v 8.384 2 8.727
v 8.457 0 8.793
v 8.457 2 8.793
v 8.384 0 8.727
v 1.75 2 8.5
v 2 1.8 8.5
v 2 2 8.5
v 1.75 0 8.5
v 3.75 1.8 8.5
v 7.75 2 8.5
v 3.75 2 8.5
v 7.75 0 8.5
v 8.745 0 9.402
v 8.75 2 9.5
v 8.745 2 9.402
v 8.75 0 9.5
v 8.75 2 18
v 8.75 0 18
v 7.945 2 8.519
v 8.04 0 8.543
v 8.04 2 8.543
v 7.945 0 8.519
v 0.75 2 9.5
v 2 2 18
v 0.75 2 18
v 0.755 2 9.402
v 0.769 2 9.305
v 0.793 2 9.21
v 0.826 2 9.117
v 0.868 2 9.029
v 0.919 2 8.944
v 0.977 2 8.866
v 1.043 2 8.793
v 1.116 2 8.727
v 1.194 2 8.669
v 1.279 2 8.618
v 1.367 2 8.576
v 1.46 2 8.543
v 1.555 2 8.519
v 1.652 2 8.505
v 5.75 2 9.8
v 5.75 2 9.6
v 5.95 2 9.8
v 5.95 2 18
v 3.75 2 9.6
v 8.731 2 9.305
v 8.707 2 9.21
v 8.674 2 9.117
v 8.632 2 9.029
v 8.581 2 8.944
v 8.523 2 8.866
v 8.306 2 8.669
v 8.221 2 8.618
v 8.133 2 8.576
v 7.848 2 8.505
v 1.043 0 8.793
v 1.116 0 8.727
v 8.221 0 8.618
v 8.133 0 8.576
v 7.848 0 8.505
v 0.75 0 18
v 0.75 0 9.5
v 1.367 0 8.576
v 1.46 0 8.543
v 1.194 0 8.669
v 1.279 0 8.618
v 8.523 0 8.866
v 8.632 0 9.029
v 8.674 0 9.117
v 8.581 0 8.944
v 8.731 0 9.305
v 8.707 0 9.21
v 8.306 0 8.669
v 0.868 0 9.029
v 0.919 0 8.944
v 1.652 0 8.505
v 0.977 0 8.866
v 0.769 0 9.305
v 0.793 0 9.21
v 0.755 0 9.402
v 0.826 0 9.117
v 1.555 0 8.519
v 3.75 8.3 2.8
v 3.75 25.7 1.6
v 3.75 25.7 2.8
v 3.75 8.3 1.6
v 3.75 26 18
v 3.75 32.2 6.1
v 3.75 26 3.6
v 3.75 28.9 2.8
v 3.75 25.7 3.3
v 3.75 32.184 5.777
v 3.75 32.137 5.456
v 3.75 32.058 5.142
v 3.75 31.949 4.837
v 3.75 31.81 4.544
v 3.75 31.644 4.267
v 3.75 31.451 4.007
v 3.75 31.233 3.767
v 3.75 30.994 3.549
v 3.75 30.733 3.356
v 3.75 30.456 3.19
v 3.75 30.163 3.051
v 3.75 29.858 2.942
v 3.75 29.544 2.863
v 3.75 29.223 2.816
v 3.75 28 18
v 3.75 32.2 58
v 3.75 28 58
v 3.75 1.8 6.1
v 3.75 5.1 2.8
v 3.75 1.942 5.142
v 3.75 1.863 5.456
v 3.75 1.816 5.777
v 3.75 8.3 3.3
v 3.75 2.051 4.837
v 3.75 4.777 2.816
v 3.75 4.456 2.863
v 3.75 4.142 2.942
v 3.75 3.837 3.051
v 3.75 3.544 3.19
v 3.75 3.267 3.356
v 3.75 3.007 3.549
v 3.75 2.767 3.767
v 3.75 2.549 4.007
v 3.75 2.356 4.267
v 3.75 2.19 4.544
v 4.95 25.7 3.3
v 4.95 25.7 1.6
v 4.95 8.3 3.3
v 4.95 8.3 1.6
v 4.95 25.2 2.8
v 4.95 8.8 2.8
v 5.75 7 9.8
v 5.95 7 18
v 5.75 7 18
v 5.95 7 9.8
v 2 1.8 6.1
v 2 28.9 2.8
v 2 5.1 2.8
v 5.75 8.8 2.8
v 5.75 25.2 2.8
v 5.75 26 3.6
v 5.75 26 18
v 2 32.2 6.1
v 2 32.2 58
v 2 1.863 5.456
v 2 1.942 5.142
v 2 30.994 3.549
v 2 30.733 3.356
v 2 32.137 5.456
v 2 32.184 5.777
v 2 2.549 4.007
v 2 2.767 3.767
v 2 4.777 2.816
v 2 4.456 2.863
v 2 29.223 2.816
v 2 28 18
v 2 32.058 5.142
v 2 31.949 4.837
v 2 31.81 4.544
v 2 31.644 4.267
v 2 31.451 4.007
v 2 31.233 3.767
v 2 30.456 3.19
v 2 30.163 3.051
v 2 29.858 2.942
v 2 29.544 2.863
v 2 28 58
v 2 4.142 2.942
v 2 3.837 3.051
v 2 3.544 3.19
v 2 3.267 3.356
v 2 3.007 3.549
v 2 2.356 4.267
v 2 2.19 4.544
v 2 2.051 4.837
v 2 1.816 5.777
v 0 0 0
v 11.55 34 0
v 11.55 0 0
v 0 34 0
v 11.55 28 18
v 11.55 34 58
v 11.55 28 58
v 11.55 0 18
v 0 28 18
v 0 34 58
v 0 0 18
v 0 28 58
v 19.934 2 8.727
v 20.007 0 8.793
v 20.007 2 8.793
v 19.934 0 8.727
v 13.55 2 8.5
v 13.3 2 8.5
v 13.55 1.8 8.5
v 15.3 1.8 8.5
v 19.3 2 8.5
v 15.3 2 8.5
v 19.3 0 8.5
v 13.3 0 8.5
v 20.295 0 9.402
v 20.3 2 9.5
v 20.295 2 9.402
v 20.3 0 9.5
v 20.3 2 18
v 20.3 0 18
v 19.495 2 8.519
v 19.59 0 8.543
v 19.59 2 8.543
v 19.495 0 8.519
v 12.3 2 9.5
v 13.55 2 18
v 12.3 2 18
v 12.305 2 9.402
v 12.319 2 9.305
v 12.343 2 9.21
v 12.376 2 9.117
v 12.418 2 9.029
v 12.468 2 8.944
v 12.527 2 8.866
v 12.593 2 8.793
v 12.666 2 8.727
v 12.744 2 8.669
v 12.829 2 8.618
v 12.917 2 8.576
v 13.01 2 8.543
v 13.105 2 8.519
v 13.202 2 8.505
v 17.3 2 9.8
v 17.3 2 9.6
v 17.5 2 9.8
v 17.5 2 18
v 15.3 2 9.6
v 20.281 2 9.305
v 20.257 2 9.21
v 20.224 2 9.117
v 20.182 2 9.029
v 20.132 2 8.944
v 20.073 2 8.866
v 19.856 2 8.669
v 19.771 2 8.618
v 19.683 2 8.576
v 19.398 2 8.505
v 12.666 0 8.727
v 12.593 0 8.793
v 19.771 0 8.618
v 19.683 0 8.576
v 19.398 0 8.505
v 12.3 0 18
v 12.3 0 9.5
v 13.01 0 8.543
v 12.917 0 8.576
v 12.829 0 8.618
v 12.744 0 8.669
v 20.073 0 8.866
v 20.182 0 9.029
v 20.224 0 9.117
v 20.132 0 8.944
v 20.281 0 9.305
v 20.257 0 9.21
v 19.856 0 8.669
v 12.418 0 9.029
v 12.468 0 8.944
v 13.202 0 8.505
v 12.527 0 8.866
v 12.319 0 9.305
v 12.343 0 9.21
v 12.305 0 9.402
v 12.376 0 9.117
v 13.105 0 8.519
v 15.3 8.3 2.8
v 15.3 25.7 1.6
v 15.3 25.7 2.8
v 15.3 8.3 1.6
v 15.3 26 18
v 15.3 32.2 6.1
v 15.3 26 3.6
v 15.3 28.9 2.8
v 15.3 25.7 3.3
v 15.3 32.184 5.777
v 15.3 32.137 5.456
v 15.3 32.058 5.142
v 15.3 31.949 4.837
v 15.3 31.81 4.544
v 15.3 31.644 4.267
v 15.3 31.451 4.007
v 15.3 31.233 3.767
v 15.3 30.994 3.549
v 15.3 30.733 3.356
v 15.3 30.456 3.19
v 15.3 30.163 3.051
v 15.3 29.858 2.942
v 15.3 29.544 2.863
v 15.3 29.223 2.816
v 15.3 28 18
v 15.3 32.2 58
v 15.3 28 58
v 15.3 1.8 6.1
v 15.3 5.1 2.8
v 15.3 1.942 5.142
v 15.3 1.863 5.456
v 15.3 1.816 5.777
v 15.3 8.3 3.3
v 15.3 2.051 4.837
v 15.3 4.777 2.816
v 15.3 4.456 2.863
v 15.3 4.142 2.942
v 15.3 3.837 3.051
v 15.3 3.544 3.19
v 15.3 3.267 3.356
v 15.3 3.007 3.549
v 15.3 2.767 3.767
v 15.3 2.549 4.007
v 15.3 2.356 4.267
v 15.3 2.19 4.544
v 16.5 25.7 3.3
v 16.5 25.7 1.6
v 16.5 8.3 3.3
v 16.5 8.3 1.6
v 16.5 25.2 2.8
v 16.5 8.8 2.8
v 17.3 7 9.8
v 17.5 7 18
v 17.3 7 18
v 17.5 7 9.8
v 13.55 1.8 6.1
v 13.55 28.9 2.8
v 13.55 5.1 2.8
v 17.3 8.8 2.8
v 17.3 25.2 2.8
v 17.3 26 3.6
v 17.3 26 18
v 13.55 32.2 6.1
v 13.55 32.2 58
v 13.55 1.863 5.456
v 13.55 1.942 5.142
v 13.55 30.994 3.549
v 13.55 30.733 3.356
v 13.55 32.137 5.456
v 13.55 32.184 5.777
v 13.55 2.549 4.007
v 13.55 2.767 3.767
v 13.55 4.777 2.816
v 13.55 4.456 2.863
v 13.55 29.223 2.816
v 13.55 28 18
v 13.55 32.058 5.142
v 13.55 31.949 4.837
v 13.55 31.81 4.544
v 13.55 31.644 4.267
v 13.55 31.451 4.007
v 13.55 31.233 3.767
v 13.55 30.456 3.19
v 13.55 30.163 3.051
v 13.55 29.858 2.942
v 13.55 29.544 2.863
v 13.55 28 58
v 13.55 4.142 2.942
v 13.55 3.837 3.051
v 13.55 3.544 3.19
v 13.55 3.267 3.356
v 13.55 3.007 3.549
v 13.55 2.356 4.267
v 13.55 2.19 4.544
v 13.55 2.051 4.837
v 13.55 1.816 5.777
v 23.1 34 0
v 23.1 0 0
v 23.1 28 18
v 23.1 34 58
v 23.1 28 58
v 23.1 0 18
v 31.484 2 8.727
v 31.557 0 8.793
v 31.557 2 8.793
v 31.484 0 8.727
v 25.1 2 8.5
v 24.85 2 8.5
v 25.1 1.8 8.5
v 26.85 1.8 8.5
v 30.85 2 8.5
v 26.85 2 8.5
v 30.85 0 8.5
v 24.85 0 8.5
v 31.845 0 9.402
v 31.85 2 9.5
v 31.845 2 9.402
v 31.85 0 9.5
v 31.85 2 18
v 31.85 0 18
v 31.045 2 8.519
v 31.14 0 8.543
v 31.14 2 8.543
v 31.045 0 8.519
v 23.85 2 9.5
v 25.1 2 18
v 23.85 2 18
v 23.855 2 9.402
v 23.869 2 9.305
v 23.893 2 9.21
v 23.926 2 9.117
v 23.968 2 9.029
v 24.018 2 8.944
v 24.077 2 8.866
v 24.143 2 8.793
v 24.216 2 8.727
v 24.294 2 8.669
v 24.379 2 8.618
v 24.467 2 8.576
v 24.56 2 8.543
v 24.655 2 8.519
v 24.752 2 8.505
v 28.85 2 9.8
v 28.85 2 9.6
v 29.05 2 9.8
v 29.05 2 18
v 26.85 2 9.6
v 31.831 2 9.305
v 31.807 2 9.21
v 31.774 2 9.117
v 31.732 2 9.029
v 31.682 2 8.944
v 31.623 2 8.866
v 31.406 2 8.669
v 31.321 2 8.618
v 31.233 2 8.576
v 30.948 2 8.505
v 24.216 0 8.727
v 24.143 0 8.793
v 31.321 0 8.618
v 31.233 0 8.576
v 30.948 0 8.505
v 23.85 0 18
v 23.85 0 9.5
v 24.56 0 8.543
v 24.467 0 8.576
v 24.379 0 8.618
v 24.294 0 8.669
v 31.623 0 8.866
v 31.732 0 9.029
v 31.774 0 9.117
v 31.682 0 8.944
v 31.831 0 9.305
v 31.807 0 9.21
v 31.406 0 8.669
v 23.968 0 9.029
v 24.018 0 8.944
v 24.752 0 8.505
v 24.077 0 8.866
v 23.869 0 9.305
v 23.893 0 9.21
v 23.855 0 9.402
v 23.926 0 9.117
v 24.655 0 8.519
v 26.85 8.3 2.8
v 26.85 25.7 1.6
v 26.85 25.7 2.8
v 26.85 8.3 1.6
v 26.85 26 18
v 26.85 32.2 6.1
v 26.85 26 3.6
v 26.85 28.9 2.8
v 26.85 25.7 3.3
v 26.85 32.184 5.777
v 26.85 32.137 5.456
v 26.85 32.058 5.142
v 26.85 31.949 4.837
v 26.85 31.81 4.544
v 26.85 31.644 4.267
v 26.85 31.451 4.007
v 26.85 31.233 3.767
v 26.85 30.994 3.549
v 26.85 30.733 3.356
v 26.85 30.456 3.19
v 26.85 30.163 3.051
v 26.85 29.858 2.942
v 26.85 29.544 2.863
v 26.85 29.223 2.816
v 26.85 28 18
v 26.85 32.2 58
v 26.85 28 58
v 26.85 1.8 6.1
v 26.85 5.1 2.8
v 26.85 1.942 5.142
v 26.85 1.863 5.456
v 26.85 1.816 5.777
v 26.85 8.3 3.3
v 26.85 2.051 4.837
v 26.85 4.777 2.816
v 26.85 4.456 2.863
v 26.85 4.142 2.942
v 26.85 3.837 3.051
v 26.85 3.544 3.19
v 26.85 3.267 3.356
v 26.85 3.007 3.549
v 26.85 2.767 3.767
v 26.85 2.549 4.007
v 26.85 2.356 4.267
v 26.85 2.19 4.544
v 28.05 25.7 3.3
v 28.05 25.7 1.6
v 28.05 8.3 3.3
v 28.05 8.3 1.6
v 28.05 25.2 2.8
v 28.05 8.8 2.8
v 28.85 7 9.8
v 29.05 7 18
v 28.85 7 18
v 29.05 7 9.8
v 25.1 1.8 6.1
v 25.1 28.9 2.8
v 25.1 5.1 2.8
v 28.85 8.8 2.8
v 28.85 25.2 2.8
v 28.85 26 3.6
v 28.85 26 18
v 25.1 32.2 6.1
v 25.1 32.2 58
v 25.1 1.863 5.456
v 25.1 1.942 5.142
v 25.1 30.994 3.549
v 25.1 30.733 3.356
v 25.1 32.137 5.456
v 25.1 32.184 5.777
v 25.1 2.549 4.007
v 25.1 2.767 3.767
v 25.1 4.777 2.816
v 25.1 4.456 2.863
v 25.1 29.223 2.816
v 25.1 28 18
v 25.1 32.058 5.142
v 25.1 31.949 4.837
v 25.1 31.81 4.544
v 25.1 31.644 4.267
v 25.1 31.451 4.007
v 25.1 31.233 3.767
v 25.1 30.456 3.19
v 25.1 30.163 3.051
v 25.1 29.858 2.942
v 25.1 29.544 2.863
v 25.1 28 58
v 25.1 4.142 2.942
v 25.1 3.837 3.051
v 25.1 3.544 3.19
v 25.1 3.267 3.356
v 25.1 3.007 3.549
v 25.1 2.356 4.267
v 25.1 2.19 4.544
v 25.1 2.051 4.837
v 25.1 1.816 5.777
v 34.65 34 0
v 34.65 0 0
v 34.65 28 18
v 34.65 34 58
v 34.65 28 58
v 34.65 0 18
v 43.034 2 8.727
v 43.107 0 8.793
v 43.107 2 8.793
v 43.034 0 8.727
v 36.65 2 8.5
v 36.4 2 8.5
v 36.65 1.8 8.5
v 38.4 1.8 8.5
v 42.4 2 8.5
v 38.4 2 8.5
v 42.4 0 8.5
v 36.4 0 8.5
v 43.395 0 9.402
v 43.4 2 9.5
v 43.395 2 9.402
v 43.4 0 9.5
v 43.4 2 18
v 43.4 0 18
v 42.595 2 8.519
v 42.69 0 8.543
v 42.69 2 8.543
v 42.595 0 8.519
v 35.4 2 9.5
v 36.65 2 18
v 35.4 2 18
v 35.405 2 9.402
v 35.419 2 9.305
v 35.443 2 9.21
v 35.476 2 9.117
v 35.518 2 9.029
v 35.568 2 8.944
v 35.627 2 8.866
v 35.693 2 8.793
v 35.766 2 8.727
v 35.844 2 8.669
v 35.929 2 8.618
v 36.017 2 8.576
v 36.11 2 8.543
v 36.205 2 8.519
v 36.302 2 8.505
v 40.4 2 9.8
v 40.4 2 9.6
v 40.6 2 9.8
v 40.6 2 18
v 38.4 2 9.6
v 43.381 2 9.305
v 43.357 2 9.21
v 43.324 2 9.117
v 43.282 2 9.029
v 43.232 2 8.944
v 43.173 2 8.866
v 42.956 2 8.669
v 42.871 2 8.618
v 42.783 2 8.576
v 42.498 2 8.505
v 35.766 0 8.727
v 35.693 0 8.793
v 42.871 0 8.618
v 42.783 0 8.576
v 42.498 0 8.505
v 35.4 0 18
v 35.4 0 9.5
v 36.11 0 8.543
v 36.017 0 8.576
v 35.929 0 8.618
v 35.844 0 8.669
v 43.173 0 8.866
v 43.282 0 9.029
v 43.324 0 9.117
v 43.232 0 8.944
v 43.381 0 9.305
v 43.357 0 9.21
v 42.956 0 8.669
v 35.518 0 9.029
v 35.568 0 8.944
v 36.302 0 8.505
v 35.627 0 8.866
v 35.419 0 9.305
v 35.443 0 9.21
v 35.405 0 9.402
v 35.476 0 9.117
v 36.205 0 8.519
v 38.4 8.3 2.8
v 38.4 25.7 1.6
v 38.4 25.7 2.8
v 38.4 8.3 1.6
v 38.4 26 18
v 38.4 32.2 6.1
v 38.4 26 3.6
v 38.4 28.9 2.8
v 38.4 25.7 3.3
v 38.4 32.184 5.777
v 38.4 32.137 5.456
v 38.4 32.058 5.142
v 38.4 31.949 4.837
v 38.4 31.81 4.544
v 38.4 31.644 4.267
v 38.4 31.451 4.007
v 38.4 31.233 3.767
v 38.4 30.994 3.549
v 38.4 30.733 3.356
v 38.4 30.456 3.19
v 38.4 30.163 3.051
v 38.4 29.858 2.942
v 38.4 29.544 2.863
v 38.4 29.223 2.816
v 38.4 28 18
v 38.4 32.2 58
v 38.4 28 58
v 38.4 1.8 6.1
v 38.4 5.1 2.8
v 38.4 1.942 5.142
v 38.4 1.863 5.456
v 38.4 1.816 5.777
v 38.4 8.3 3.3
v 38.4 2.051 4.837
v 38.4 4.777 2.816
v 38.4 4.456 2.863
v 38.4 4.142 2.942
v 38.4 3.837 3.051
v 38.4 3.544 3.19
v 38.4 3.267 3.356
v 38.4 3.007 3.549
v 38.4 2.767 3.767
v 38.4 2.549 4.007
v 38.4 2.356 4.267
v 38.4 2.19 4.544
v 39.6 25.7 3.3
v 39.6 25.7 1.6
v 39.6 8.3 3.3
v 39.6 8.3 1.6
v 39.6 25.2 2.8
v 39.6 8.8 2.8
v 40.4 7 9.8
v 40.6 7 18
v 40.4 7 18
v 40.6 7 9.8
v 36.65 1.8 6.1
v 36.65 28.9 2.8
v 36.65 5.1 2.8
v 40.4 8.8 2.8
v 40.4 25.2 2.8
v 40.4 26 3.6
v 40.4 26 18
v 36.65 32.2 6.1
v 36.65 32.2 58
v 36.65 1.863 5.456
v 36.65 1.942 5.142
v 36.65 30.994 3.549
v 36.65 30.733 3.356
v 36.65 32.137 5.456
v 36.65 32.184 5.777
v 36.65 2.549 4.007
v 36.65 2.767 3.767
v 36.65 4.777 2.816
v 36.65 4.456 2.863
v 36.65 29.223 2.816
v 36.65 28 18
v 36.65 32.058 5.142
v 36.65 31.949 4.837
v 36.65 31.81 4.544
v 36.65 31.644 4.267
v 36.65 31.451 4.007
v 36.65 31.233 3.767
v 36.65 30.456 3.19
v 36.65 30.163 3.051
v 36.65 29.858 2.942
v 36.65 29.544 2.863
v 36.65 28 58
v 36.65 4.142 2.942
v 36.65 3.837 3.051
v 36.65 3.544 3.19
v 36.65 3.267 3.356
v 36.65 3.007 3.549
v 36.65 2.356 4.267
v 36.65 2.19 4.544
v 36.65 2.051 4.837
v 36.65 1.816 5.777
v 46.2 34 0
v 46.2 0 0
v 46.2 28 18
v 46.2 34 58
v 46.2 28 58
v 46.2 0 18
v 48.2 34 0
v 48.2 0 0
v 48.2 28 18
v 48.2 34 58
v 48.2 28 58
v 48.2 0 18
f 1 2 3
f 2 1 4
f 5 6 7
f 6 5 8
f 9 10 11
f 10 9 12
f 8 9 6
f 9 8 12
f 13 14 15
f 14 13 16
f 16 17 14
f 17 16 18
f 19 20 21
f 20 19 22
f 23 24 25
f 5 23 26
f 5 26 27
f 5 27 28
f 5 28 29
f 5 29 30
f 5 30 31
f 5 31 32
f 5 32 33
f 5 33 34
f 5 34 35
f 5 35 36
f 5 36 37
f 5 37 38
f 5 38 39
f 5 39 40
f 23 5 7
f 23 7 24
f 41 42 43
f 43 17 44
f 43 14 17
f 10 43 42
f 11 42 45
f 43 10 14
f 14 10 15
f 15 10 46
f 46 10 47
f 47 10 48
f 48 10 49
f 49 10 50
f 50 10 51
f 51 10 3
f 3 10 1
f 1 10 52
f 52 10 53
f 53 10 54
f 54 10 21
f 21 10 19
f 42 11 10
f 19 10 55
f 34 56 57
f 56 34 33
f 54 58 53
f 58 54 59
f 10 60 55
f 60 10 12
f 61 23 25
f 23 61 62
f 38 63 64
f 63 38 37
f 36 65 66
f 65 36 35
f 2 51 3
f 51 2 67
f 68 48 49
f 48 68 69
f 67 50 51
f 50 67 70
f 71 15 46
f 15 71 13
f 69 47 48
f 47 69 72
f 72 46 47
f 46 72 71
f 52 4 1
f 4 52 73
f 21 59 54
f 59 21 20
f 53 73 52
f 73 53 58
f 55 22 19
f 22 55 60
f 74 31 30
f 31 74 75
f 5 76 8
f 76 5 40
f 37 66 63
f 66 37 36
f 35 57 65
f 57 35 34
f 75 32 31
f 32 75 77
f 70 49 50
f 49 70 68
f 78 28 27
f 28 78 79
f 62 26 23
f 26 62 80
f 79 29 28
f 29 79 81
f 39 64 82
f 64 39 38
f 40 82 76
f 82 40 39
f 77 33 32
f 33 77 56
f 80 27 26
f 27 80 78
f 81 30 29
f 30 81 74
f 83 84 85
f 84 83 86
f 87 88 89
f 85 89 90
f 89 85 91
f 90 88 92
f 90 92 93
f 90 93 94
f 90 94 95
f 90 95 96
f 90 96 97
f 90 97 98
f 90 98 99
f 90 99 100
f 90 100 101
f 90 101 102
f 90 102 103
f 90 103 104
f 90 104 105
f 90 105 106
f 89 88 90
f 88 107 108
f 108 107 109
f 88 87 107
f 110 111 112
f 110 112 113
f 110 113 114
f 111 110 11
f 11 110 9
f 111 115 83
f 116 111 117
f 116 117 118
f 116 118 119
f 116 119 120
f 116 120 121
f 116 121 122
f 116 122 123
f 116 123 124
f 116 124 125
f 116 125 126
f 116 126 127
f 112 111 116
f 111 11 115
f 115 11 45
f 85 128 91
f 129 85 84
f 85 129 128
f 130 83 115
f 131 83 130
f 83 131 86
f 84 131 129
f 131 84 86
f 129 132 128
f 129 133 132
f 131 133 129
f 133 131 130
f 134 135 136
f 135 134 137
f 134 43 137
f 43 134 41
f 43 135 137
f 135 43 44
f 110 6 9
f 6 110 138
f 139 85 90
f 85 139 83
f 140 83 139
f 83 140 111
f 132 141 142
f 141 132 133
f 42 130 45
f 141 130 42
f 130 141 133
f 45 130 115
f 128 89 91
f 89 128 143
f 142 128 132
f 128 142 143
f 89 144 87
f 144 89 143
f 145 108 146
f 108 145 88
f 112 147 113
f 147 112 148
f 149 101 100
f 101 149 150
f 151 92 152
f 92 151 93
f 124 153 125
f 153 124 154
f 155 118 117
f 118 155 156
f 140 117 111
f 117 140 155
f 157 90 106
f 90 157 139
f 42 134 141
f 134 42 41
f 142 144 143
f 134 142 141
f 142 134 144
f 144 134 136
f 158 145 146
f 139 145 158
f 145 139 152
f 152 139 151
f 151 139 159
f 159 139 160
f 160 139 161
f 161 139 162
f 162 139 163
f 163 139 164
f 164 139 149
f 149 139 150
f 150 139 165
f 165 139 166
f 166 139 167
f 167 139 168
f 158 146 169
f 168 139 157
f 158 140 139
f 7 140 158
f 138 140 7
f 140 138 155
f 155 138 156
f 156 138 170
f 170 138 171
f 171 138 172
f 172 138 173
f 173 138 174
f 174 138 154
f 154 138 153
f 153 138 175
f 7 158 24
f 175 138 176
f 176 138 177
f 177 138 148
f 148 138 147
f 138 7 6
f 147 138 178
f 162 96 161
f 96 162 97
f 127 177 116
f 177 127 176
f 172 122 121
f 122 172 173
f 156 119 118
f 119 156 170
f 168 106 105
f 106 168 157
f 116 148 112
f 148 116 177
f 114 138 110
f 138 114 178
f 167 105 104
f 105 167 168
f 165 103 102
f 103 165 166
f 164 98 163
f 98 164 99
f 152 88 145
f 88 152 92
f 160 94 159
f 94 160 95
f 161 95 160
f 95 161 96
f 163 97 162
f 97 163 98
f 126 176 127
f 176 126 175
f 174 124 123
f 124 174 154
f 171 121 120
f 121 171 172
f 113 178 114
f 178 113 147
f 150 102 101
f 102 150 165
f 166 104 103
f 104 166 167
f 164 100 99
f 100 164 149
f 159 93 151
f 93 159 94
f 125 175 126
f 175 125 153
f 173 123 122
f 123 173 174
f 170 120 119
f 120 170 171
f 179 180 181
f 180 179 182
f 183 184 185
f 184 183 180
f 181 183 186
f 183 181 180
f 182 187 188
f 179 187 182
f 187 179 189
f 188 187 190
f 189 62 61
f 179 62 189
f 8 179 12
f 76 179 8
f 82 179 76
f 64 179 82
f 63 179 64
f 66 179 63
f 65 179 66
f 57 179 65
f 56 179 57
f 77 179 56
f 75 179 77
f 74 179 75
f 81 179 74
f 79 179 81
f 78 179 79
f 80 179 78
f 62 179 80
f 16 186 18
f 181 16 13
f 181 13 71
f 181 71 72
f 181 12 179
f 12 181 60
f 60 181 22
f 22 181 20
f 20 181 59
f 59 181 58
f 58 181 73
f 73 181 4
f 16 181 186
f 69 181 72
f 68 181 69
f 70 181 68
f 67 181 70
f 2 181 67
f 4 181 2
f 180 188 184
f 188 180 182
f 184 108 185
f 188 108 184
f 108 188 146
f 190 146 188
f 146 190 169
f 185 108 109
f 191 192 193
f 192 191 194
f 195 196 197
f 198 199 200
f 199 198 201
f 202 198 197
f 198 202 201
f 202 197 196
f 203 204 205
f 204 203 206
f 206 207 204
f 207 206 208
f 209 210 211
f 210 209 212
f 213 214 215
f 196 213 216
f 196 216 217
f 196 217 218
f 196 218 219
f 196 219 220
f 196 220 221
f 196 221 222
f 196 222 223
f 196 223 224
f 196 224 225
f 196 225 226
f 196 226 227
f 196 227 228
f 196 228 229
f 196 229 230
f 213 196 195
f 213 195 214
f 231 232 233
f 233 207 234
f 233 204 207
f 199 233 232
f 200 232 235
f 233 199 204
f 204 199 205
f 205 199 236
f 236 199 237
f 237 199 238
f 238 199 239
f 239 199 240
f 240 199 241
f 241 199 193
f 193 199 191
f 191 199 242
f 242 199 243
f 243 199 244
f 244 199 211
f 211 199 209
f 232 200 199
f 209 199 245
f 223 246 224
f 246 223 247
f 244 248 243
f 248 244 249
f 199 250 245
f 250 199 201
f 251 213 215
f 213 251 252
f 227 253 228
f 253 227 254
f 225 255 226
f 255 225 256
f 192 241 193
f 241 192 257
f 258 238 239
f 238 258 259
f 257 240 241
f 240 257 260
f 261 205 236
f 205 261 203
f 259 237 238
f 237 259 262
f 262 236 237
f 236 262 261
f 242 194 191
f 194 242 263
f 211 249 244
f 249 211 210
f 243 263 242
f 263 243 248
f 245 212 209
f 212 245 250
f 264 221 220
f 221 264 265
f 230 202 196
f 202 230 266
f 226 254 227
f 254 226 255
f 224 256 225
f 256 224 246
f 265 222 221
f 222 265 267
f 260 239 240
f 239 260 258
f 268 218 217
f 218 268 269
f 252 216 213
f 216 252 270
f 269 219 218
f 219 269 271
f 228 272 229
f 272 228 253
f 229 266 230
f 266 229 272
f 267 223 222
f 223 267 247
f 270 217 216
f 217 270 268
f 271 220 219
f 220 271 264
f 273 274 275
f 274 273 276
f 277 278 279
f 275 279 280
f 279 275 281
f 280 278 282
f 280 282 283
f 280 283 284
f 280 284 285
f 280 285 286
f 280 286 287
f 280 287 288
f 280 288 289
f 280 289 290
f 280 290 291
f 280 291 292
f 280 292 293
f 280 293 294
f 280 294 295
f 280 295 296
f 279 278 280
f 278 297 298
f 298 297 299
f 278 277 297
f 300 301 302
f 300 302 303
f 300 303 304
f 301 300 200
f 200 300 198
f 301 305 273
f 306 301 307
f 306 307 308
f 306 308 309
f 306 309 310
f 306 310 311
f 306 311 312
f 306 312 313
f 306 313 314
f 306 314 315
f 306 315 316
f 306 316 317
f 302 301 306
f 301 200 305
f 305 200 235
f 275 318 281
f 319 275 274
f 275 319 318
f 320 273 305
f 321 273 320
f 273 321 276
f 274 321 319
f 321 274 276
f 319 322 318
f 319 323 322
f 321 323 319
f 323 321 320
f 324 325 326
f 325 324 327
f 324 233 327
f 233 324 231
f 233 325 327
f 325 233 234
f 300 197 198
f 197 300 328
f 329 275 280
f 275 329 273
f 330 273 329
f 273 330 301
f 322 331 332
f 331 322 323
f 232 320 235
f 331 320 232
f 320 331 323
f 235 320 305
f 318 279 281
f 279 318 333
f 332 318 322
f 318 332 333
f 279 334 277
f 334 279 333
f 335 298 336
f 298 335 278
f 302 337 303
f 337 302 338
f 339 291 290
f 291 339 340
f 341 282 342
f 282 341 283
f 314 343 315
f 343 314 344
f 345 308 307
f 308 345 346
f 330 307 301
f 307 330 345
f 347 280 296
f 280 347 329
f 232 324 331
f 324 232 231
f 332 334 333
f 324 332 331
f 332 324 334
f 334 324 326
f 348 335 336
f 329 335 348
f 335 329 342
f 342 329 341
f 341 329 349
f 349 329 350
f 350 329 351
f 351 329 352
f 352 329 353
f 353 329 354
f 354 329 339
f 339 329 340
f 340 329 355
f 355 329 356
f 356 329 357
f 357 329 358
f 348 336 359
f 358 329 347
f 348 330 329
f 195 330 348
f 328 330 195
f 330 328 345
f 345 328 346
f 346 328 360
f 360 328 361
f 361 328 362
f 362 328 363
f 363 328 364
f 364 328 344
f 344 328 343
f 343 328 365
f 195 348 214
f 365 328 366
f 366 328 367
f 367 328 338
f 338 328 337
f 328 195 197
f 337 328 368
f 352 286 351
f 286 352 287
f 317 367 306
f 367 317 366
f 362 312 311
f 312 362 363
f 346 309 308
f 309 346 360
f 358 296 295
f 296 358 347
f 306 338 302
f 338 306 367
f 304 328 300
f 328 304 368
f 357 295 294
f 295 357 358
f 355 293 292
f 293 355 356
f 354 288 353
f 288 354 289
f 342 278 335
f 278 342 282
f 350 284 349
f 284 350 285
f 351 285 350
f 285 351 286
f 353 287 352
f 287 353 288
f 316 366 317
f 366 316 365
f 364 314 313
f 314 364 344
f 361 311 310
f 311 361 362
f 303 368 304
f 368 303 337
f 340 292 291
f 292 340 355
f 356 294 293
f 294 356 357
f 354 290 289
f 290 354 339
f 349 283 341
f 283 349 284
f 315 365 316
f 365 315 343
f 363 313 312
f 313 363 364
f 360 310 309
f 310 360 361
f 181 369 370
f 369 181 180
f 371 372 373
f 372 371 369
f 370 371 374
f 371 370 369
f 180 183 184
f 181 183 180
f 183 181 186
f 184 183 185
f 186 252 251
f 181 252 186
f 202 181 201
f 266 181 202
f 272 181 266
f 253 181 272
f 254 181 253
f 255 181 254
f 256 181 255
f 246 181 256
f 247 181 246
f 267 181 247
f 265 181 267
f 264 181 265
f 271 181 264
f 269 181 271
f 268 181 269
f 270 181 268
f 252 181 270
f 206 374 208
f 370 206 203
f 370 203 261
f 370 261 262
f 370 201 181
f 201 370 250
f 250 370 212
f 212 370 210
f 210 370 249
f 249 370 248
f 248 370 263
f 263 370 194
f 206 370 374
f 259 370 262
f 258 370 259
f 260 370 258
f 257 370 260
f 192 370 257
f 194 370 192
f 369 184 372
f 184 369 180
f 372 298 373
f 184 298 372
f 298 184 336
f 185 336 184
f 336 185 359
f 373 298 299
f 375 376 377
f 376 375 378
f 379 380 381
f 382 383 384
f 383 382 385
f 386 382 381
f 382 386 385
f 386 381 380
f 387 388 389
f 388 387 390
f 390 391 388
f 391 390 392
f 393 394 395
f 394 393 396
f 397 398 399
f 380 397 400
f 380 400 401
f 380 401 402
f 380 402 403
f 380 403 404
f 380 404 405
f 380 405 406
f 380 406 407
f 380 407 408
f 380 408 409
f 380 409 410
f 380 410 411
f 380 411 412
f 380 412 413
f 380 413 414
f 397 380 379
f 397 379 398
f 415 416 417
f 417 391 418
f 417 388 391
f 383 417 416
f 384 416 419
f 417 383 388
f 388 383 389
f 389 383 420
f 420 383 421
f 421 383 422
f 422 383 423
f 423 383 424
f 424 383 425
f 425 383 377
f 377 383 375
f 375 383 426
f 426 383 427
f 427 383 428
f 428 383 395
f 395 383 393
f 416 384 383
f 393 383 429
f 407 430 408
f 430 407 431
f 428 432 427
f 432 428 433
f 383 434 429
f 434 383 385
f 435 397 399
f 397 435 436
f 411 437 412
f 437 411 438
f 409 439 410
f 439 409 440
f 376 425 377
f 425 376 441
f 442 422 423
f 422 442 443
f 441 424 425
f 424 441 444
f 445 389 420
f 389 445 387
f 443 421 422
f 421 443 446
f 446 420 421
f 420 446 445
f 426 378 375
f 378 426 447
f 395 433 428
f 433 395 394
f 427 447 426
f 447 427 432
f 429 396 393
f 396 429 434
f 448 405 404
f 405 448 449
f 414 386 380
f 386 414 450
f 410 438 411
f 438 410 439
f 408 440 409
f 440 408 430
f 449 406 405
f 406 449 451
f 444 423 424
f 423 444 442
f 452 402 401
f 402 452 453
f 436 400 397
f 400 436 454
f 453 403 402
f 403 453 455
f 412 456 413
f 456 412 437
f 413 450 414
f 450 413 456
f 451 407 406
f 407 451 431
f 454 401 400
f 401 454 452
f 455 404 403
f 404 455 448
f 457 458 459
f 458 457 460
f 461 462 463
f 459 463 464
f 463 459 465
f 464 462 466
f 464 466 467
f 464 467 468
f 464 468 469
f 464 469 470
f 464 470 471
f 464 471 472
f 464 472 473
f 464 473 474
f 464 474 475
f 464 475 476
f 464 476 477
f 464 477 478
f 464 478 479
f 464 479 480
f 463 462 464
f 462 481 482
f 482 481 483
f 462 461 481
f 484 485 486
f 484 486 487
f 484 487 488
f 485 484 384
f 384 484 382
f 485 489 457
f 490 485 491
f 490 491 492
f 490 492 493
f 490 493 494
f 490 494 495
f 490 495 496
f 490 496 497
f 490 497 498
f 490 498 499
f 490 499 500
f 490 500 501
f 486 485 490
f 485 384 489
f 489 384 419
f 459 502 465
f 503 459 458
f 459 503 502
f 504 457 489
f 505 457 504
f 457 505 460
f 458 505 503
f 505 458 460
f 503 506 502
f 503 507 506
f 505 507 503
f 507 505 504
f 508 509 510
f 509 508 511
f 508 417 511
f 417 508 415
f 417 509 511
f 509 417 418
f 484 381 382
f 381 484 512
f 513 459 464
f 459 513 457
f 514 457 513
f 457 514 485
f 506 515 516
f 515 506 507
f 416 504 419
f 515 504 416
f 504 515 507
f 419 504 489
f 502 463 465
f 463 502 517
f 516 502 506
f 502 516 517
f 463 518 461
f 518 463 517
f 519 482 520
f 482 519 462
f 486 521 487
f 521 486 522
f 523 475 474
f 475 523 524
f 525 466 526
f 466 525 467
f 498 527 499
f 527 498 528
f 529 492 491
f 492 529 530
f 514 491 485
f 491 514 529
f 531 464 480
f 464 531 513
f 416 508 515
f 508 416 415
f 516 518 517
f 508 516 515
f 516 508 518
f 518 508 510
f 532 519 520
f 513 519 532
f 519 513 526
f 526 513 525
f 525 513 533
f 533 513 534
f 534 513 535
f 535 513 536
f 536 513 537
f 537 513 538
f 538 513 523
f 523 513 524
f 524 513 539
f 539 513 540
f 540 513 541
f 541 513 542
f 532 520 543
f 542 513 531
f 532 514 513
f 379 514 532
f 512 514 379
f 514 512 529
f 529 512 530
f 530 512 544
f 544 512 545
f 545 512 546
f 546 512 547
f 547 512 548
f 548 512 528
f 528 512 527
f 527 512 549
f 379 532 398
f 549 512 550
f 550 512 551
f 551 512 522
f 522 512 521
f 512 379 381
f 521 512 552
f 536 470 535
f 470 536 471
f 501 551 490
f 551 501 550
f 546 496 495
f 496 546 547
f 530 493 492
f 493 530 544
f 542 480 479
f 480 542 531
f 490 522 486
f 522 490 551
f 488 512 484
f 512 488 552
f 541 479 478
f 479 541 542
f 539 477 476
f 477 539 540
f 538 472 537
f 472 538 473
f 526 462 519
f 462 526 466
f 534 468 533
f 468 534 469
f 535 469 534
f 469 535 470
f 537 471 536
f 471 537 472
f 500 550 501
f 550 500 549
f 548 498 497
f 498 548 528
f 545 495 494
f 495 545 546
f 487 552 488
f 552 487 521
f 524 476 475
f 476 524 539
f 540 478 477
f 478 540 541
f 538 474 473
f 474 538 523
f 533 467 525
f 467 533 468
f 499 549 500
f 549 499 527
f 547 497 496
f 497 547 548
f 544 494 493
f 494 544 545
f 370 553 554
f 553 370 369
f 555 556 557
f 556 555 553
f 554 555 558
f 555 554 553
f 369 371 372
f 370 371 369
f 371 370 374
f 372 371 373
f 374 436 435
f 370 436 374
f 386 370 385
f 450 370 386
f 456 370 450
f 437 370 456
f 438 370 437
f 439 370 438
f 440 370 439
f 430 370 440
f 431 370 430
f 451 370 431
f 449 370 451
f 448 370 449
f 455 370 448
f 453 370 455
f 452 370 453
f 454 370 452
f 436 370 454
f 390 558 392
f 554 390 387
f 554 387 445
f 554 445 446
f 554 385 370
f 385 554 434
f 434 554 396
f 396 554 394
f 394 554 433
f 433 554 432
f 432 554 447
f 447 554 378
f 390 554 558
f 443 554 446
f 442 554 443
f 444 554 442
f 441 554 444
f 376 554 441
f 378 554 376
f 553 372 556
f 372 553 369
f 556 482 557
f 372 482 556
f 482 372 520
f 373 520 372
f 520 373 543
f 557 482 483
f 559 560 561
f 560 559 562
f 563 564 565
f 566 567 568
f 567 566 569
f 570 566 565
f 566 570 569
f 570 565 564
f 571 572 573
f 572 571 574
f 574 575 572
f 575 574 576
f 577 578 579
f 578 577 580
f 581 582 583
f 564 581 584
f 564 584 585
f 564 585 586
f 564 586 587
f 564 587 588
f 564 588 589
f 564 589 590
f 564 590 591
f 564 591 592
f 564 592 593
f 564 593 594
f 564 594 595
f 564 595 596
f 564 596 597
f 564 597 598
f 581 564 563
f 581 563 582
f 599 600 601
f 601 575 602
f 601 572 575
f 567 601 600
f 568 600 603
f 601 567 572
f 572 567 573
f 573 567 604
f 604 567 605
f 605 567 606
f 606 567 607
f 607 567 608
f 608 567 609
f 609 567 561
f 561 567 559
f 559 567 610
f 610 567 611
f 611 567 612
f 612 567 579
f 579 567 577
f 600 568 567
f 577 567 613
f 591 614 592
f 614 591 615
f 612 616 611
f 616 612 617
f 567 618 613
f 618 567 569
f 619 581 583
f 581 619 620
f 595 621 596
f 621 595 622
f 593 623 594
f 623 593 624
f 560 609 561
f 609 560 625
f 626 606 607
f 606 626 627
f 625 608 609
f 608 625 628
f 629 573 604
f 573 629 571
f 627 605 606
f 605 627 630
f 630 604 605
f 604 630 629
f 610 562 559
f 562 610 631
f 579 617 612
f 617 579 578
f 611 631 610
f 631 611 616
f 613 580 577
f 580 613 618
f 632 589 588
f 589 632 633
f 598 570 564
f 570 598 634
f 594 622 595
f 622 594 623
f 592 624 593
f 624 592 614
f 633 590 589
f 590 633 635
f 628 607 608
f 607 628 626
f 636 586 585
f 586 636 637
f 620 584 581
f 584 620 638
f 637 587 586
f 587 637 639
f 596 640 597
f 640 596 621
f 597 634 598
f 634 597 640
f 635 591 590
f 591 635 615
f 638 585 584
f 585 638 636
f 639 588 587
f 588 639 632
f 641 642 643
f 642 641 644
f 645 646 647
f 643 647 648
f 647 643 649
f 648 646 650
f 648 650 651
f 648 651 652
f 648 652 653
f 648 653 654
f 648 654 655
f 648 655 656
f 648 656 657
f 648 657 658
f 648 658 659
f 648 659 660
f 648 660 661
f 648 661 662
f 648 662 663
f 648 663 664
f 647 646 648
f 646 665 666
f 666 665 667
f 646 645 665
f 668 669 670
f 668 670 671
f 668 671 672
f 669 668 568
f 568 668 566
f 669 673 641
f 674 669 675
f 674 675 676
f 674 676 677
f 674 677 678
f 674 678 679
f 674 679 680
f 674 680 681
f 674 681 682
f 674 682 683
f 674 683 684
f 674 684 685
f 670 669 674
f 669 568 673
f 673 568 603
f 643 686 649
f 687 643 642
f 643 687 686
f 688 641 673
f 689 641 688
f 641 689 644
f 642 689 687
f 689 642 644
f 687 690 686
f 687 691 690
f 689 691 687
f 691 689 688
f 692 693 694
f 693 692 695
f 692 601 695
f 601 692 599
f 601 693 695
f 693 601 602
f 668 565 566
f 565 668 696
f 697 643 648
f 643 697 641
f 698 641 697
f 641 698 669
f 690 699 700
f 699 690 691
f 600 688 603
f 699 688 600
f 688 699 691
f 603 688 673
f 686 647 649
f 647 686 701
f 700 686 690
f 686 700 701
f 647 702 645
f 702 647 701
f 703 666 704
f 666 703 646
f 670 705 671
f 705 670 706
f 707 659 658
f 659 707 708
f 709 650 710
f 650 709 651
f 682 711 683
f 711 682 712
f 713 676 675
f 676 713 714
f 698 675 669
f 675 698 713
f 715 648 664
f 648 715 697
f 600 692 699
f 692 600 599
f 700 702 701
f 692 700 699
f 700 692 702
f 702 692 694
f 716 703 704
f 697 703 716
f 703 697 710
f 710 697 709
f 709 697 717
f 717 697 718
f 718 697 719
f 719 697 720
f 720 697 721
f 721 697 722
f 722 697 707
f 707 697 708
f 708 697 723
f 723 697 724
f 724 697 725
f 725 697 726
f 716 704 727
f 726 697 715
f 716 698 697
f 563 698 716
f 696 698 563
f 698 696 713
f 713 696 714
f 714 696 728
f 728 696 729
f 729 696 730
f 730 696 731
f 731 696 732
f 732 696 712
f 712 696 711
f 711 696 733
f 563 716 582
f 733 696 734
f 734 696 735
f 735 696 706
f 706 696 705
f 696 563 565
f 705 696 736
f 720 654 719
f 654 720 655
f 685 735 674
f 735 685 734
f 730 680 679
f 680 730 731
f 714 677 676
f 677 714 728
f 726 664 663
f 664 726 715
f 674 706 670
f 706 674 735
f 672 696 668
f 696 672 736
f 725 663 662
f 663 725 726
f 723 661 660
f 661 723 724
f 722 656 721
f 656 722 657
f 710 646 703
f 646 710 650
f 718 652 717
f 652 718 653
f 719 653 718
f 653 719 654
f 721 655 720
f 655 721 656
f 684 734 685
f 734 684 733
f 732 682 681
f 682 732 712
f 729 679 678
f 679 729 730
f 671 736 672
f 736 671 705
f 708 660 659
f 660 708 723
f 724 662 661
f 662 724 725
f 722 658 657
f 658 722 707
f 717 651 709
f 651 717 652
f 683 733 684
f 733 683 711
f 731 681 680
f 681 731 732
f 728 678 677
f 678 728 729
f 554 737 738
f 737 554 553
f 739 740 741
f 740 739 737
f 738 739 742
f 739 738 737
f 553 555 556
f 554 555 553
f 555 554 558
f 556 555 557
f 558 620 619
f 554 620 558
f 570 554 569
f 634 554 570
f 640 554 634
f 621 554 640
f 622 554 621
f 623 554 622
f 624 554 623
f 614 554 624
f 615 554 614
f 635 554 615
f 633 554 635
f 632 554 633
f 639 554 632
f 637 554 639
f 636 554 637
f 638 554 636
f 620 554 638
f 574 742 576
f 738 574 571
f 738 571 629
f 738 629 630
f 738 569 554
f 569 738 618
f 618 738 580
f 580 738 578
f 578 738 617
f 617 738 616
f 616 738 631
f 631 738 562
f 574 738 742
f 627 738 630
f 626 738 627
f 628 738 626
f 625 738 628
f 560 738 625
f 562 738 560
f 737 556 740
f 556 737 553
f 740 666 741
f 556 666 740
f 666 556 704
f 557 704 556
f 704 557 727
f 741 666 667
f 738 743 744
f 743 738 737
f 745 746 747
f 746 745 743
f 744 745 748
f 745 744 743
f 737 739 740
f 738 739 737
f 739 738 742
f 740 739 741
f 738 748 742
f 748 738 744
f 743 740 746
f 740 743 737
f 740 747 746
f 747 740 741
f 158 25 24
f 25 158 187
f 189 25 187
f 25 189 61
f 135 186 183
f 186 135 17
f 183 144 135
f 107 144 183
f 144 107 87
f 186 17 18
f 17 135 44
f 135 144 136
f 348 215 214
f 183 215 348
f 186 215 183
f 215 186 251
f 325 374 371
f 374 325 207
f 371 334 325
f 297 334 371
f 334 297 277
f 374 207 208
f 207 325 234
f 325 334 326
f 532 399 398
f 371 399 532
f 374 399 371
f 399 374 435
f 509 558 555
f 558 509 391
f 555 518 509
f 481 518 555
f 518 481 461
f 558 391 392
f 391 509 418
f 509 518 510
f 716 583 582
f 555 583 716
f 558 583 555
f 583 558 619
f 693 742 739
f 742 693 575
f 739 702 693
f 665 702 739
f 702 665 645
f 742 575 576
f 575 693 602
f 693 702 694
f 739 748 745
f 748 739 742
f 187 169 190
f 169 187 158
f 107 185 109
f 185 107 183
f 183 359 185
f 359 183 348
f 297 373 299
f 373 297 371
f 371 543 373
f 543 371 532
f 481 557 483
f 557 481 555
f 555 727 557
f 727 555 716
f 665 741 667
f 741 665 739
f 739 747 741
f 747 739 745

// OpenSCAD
// file: pi-zero.scad
use <rounded-rect.scad>;

piZero(cutOutCorners = true, cutOutGPIO = true);

module piZero(includeCables = true, includeHeatsink = true, heightPadding = 0, sdWidth = 12, cameraWidth = 17, r = 3.5, heatsinkHeight = 7, cutOutCorners = false, cutOutGPIO = false, printerTolerance = 0) {
    // base board
    color("green")
        difference() {
            linear_extrude(0, 0, 1.55 + 2 + heightPadding + printerTolerance)
                difference() {
                    roundedRect(30 + 2 * printerTolerance, 65 + 2 * printerTolerance, max(0, r - printerTolerance));
    //                union() {
    //                    translate([11.5 + printerTolerance, 29 + printerTolerance, 0]) circle(r = 1.25 - printerTolerance);
    //                    translate([-11.5 - printerTolerance, 29 + printerTolerance, 0]) circle(r = 1.25 - printerTolerance);
    //                    translate([11.5 + printerTolerance, -29 - printerTolerance, 0]) circle(r = 1.25 - printerTolerance);
    //                    translate([-11.5 - printerTolerance, -29 - printerTolerance, 0]) circle(r = 1.25 - printerTolerance);
    //                };
                };
                translate([0, 0, 1.55 + heightPadding + printerTolerance]) {
                    if (cutOutCorners) {
                        linear_extrude(0, 0, 3 + printerTolerance)
                            union() {
                                polygon([
                                    [-15-printerTolerance, -32.5-printerTolerance],
                                    [-15-printerTolerance, -32.5-printerTolerance+(2*r)],
                                    [-15-printerTolerance+(2*r), -32.5-printerTolerance]]);
                                polygon([
                                    [-15-printerTolerance, -1*(-32.5-printerTolerance)],
                                    [-15-printerTolerance, -1*(-32.5-printerTolerance+(2*r))],
                                    [-15-printerTolerance+(2*r), -1*(-32.5-printerTolerance)]]);
                                polygon([
                                    [-1*(-15-printerTolerance), -1*(-32.5-printerTolerance)],
                                    [-1*(-15-printerTolerance), -1*(-32.5-printerTolerance+(2*r))],
                                    [-1*(-15-printerTolerance+(2*r)), -1*(-32.5-printerTolerance)]]);
                                polygon([
                                    [-1*(-15-printerTolerance), -32.5-printerTolerance],
                                    [-1*(-15-printerTolerance), -32.5-printerTolerance+(2*r)],
                                    [-1*(-15-printerTolerance+(2*r)), -32.5-printerTolerance]]);
                            };
                    }
                    if (cutOutGPIO) {
                        linear_extrude(0, 0, 3 + printerTolerance)
                            translate([9, -32.5-printerTolerance, 0])
                                square([6.5 + printerTolerance, 65 + 2*(printerTolerance)]);
                    }
                }
    }
    // top stuff
    translate([0, 0, 1.55 + printerTolerance])
        color("cyan")
            union() {
                // camera port cover
                linear_extrude(0, 0, 1 + heightPadding + printerTolerance)
                    translate([0, -32.5 - printerTolerance, 0])
                        square([cameraWidth + 2 * printerTolerance, 2 + 2 * printerTolerance], center = true);
                // micro usb ports
                translate([-10, -8.9, 1])
                    rotate([0, -90, 0])
                        linear_extrude(0, 0, 6)
                            square([2 + 2 * printerTolerance, 8 + 2 * printerTolerance], center = true);
                translate([-10, -21.5, 1])
                    rotate([0, -90, 0])
                        linear_extrude(0, 0, 6)
                            square([2 + 2 * printerTolerance, 8 + 2 * printerTolerance], center = true);
                // micro usb port things
                if (includeCables) {
                    translate([-15, -8.9, 1])
                        rotate([0, -90, 0])
                            linear_extrude(0, 0, 8)
                                roundedRect(8, 11, 1);
                    translate([-15, -21.5, 1])
                        rotate([0, -90, 0])
                            linear_extrude(0, 0, 8)
                                roundedRect(8, 11, 1);
                }
                // micro hdmi port
                translate([-7, 20.1, 1.7])
                    rotate([0, -90, 0])
                        linear_extrude(0, 0, 9.5)
                            square([3.4 + 2 * printerTolerance, 11.5 + 2 * printerTolerance], center = true);
                // micro hdmi adapter
                if (includeCables) {
                    translate([-15, 20.1, 1.7])
                        rotate([0, -90, 0])
                            linear_extrude(0, 0, 9.5)
                                roundedRect(9 + 2 * printerTolerance, 14 + 2* printerTolerance, 2);
                }
                
                // microsd card
                translate([1.9, 28, 0])
                    linear_extrude(0, 0, 1.5 + heightPadding)
                        square([sdWidth + 2 * printerTolerance, 16 + 2 * printerTolerance], center = true);
                
                // cpu heatsink
                if (includeHeatsink) {
                    linear_extrude(0, 0, heatsinkHeight) {
                        // pi zero
                        translate([-2.5, 32.5 - 24.5 - 7, 0])
                            square([15, 15], center = true);
                        // pi zero w
                        translate([-3, 32.5 - 18.5 - 7, 0])
                            square([15, 15], center = true);
                    }
                }
            };
}
// file: rounded-rect.scad
$fn = 64;

linear_extrude(0, 0, 1) roundedRect(10, 20, 2, center = false);

module roundedRect(w, h, r, center = true) {
    translate([center ? 0 : (w/2), center ? 0 : (h/2), 0]) {
        square([w - 2 * r, h], center = true);
        square([w, h - 2 * r], center = true);
        translate([w/2 - r, h/2 - r, 0]) circle(r = r);
        translate([-(w/2 - r), h/2 - r, 0]) circle(r = r);
        translate([w/2 - r, -(h/2 - r), 0]) circle(r = r);
        translate([-(w/2 - r), -(h/2 - r), 0]) circle(r = r);
    }
}
// main file
use <rounded-rect.scad>;
use <pi-zero.scad>;

printerTolerance = 0.2;
piCount = 4;

piThickness = 1.55;
piWidth = 30;
piLength = 65;

heatsinkHeight = 8;

slotWidth = heatsinkHeight + piThickness;
slotDepth = piWidth;
slotHeight = 55;
baseThickness = 3;
wallThickness = 2;
scoopDepth = 25;
scoopHeight = 15;

// how far the pi's bottom needs to be vertically sunk into the slot
piSinkDepth = slotWidth - piThickness - heatsinkHeight - printerTolerance;

multiSlot();

module multiSlot() {
    difference() {
        union() {
            for (i = [0:piCount-1]) {
                translate([i * (slotWidth + wallThickness), 0, 0])
                    piSlot();
            }
            // end wall
            translate([piCount * (slotWidth + wallThickness), 0, 0])
                linear_extrude(0, 0, slotHeight + baseThickness)
                    square([wallThickness, slotDepth + 2*wallThickness]);
        };
        // the scoop
        translate([-1, -1, baseThickness + scoopHeight])
            linear_extrude(0, 0, slotHeight)
                square([(piCount + 1) * (slotWidth + wallThickness), scoopDepth + wallThickness + 2]);
    }
}

module piSlot() {
    difference() {
        // the actual frame
        linear_extrude(0, 0, slotHeight + baseThickness)
            square([wallThickness + slotWidth, slotDepth + 2*wallThickness]);
        // pi cutout
        translate([wallThickness, wallThickness, baseThickness])
            piCutout();
    }
}

module piCutout () {
    translate([-piSinkDepth, piWidth, 0])
    rotate([90, 0, 0])
    rotate([0, 90, 0])
    translate([-piWidth/2, piLength/2, -printerTolerance])
    piZero(includeCables = true, heatsinkHeight = heatsinkHeight, cutOutCorners = true, cutOutGPIO = true, printerTolerance = printerTolerance);
}
